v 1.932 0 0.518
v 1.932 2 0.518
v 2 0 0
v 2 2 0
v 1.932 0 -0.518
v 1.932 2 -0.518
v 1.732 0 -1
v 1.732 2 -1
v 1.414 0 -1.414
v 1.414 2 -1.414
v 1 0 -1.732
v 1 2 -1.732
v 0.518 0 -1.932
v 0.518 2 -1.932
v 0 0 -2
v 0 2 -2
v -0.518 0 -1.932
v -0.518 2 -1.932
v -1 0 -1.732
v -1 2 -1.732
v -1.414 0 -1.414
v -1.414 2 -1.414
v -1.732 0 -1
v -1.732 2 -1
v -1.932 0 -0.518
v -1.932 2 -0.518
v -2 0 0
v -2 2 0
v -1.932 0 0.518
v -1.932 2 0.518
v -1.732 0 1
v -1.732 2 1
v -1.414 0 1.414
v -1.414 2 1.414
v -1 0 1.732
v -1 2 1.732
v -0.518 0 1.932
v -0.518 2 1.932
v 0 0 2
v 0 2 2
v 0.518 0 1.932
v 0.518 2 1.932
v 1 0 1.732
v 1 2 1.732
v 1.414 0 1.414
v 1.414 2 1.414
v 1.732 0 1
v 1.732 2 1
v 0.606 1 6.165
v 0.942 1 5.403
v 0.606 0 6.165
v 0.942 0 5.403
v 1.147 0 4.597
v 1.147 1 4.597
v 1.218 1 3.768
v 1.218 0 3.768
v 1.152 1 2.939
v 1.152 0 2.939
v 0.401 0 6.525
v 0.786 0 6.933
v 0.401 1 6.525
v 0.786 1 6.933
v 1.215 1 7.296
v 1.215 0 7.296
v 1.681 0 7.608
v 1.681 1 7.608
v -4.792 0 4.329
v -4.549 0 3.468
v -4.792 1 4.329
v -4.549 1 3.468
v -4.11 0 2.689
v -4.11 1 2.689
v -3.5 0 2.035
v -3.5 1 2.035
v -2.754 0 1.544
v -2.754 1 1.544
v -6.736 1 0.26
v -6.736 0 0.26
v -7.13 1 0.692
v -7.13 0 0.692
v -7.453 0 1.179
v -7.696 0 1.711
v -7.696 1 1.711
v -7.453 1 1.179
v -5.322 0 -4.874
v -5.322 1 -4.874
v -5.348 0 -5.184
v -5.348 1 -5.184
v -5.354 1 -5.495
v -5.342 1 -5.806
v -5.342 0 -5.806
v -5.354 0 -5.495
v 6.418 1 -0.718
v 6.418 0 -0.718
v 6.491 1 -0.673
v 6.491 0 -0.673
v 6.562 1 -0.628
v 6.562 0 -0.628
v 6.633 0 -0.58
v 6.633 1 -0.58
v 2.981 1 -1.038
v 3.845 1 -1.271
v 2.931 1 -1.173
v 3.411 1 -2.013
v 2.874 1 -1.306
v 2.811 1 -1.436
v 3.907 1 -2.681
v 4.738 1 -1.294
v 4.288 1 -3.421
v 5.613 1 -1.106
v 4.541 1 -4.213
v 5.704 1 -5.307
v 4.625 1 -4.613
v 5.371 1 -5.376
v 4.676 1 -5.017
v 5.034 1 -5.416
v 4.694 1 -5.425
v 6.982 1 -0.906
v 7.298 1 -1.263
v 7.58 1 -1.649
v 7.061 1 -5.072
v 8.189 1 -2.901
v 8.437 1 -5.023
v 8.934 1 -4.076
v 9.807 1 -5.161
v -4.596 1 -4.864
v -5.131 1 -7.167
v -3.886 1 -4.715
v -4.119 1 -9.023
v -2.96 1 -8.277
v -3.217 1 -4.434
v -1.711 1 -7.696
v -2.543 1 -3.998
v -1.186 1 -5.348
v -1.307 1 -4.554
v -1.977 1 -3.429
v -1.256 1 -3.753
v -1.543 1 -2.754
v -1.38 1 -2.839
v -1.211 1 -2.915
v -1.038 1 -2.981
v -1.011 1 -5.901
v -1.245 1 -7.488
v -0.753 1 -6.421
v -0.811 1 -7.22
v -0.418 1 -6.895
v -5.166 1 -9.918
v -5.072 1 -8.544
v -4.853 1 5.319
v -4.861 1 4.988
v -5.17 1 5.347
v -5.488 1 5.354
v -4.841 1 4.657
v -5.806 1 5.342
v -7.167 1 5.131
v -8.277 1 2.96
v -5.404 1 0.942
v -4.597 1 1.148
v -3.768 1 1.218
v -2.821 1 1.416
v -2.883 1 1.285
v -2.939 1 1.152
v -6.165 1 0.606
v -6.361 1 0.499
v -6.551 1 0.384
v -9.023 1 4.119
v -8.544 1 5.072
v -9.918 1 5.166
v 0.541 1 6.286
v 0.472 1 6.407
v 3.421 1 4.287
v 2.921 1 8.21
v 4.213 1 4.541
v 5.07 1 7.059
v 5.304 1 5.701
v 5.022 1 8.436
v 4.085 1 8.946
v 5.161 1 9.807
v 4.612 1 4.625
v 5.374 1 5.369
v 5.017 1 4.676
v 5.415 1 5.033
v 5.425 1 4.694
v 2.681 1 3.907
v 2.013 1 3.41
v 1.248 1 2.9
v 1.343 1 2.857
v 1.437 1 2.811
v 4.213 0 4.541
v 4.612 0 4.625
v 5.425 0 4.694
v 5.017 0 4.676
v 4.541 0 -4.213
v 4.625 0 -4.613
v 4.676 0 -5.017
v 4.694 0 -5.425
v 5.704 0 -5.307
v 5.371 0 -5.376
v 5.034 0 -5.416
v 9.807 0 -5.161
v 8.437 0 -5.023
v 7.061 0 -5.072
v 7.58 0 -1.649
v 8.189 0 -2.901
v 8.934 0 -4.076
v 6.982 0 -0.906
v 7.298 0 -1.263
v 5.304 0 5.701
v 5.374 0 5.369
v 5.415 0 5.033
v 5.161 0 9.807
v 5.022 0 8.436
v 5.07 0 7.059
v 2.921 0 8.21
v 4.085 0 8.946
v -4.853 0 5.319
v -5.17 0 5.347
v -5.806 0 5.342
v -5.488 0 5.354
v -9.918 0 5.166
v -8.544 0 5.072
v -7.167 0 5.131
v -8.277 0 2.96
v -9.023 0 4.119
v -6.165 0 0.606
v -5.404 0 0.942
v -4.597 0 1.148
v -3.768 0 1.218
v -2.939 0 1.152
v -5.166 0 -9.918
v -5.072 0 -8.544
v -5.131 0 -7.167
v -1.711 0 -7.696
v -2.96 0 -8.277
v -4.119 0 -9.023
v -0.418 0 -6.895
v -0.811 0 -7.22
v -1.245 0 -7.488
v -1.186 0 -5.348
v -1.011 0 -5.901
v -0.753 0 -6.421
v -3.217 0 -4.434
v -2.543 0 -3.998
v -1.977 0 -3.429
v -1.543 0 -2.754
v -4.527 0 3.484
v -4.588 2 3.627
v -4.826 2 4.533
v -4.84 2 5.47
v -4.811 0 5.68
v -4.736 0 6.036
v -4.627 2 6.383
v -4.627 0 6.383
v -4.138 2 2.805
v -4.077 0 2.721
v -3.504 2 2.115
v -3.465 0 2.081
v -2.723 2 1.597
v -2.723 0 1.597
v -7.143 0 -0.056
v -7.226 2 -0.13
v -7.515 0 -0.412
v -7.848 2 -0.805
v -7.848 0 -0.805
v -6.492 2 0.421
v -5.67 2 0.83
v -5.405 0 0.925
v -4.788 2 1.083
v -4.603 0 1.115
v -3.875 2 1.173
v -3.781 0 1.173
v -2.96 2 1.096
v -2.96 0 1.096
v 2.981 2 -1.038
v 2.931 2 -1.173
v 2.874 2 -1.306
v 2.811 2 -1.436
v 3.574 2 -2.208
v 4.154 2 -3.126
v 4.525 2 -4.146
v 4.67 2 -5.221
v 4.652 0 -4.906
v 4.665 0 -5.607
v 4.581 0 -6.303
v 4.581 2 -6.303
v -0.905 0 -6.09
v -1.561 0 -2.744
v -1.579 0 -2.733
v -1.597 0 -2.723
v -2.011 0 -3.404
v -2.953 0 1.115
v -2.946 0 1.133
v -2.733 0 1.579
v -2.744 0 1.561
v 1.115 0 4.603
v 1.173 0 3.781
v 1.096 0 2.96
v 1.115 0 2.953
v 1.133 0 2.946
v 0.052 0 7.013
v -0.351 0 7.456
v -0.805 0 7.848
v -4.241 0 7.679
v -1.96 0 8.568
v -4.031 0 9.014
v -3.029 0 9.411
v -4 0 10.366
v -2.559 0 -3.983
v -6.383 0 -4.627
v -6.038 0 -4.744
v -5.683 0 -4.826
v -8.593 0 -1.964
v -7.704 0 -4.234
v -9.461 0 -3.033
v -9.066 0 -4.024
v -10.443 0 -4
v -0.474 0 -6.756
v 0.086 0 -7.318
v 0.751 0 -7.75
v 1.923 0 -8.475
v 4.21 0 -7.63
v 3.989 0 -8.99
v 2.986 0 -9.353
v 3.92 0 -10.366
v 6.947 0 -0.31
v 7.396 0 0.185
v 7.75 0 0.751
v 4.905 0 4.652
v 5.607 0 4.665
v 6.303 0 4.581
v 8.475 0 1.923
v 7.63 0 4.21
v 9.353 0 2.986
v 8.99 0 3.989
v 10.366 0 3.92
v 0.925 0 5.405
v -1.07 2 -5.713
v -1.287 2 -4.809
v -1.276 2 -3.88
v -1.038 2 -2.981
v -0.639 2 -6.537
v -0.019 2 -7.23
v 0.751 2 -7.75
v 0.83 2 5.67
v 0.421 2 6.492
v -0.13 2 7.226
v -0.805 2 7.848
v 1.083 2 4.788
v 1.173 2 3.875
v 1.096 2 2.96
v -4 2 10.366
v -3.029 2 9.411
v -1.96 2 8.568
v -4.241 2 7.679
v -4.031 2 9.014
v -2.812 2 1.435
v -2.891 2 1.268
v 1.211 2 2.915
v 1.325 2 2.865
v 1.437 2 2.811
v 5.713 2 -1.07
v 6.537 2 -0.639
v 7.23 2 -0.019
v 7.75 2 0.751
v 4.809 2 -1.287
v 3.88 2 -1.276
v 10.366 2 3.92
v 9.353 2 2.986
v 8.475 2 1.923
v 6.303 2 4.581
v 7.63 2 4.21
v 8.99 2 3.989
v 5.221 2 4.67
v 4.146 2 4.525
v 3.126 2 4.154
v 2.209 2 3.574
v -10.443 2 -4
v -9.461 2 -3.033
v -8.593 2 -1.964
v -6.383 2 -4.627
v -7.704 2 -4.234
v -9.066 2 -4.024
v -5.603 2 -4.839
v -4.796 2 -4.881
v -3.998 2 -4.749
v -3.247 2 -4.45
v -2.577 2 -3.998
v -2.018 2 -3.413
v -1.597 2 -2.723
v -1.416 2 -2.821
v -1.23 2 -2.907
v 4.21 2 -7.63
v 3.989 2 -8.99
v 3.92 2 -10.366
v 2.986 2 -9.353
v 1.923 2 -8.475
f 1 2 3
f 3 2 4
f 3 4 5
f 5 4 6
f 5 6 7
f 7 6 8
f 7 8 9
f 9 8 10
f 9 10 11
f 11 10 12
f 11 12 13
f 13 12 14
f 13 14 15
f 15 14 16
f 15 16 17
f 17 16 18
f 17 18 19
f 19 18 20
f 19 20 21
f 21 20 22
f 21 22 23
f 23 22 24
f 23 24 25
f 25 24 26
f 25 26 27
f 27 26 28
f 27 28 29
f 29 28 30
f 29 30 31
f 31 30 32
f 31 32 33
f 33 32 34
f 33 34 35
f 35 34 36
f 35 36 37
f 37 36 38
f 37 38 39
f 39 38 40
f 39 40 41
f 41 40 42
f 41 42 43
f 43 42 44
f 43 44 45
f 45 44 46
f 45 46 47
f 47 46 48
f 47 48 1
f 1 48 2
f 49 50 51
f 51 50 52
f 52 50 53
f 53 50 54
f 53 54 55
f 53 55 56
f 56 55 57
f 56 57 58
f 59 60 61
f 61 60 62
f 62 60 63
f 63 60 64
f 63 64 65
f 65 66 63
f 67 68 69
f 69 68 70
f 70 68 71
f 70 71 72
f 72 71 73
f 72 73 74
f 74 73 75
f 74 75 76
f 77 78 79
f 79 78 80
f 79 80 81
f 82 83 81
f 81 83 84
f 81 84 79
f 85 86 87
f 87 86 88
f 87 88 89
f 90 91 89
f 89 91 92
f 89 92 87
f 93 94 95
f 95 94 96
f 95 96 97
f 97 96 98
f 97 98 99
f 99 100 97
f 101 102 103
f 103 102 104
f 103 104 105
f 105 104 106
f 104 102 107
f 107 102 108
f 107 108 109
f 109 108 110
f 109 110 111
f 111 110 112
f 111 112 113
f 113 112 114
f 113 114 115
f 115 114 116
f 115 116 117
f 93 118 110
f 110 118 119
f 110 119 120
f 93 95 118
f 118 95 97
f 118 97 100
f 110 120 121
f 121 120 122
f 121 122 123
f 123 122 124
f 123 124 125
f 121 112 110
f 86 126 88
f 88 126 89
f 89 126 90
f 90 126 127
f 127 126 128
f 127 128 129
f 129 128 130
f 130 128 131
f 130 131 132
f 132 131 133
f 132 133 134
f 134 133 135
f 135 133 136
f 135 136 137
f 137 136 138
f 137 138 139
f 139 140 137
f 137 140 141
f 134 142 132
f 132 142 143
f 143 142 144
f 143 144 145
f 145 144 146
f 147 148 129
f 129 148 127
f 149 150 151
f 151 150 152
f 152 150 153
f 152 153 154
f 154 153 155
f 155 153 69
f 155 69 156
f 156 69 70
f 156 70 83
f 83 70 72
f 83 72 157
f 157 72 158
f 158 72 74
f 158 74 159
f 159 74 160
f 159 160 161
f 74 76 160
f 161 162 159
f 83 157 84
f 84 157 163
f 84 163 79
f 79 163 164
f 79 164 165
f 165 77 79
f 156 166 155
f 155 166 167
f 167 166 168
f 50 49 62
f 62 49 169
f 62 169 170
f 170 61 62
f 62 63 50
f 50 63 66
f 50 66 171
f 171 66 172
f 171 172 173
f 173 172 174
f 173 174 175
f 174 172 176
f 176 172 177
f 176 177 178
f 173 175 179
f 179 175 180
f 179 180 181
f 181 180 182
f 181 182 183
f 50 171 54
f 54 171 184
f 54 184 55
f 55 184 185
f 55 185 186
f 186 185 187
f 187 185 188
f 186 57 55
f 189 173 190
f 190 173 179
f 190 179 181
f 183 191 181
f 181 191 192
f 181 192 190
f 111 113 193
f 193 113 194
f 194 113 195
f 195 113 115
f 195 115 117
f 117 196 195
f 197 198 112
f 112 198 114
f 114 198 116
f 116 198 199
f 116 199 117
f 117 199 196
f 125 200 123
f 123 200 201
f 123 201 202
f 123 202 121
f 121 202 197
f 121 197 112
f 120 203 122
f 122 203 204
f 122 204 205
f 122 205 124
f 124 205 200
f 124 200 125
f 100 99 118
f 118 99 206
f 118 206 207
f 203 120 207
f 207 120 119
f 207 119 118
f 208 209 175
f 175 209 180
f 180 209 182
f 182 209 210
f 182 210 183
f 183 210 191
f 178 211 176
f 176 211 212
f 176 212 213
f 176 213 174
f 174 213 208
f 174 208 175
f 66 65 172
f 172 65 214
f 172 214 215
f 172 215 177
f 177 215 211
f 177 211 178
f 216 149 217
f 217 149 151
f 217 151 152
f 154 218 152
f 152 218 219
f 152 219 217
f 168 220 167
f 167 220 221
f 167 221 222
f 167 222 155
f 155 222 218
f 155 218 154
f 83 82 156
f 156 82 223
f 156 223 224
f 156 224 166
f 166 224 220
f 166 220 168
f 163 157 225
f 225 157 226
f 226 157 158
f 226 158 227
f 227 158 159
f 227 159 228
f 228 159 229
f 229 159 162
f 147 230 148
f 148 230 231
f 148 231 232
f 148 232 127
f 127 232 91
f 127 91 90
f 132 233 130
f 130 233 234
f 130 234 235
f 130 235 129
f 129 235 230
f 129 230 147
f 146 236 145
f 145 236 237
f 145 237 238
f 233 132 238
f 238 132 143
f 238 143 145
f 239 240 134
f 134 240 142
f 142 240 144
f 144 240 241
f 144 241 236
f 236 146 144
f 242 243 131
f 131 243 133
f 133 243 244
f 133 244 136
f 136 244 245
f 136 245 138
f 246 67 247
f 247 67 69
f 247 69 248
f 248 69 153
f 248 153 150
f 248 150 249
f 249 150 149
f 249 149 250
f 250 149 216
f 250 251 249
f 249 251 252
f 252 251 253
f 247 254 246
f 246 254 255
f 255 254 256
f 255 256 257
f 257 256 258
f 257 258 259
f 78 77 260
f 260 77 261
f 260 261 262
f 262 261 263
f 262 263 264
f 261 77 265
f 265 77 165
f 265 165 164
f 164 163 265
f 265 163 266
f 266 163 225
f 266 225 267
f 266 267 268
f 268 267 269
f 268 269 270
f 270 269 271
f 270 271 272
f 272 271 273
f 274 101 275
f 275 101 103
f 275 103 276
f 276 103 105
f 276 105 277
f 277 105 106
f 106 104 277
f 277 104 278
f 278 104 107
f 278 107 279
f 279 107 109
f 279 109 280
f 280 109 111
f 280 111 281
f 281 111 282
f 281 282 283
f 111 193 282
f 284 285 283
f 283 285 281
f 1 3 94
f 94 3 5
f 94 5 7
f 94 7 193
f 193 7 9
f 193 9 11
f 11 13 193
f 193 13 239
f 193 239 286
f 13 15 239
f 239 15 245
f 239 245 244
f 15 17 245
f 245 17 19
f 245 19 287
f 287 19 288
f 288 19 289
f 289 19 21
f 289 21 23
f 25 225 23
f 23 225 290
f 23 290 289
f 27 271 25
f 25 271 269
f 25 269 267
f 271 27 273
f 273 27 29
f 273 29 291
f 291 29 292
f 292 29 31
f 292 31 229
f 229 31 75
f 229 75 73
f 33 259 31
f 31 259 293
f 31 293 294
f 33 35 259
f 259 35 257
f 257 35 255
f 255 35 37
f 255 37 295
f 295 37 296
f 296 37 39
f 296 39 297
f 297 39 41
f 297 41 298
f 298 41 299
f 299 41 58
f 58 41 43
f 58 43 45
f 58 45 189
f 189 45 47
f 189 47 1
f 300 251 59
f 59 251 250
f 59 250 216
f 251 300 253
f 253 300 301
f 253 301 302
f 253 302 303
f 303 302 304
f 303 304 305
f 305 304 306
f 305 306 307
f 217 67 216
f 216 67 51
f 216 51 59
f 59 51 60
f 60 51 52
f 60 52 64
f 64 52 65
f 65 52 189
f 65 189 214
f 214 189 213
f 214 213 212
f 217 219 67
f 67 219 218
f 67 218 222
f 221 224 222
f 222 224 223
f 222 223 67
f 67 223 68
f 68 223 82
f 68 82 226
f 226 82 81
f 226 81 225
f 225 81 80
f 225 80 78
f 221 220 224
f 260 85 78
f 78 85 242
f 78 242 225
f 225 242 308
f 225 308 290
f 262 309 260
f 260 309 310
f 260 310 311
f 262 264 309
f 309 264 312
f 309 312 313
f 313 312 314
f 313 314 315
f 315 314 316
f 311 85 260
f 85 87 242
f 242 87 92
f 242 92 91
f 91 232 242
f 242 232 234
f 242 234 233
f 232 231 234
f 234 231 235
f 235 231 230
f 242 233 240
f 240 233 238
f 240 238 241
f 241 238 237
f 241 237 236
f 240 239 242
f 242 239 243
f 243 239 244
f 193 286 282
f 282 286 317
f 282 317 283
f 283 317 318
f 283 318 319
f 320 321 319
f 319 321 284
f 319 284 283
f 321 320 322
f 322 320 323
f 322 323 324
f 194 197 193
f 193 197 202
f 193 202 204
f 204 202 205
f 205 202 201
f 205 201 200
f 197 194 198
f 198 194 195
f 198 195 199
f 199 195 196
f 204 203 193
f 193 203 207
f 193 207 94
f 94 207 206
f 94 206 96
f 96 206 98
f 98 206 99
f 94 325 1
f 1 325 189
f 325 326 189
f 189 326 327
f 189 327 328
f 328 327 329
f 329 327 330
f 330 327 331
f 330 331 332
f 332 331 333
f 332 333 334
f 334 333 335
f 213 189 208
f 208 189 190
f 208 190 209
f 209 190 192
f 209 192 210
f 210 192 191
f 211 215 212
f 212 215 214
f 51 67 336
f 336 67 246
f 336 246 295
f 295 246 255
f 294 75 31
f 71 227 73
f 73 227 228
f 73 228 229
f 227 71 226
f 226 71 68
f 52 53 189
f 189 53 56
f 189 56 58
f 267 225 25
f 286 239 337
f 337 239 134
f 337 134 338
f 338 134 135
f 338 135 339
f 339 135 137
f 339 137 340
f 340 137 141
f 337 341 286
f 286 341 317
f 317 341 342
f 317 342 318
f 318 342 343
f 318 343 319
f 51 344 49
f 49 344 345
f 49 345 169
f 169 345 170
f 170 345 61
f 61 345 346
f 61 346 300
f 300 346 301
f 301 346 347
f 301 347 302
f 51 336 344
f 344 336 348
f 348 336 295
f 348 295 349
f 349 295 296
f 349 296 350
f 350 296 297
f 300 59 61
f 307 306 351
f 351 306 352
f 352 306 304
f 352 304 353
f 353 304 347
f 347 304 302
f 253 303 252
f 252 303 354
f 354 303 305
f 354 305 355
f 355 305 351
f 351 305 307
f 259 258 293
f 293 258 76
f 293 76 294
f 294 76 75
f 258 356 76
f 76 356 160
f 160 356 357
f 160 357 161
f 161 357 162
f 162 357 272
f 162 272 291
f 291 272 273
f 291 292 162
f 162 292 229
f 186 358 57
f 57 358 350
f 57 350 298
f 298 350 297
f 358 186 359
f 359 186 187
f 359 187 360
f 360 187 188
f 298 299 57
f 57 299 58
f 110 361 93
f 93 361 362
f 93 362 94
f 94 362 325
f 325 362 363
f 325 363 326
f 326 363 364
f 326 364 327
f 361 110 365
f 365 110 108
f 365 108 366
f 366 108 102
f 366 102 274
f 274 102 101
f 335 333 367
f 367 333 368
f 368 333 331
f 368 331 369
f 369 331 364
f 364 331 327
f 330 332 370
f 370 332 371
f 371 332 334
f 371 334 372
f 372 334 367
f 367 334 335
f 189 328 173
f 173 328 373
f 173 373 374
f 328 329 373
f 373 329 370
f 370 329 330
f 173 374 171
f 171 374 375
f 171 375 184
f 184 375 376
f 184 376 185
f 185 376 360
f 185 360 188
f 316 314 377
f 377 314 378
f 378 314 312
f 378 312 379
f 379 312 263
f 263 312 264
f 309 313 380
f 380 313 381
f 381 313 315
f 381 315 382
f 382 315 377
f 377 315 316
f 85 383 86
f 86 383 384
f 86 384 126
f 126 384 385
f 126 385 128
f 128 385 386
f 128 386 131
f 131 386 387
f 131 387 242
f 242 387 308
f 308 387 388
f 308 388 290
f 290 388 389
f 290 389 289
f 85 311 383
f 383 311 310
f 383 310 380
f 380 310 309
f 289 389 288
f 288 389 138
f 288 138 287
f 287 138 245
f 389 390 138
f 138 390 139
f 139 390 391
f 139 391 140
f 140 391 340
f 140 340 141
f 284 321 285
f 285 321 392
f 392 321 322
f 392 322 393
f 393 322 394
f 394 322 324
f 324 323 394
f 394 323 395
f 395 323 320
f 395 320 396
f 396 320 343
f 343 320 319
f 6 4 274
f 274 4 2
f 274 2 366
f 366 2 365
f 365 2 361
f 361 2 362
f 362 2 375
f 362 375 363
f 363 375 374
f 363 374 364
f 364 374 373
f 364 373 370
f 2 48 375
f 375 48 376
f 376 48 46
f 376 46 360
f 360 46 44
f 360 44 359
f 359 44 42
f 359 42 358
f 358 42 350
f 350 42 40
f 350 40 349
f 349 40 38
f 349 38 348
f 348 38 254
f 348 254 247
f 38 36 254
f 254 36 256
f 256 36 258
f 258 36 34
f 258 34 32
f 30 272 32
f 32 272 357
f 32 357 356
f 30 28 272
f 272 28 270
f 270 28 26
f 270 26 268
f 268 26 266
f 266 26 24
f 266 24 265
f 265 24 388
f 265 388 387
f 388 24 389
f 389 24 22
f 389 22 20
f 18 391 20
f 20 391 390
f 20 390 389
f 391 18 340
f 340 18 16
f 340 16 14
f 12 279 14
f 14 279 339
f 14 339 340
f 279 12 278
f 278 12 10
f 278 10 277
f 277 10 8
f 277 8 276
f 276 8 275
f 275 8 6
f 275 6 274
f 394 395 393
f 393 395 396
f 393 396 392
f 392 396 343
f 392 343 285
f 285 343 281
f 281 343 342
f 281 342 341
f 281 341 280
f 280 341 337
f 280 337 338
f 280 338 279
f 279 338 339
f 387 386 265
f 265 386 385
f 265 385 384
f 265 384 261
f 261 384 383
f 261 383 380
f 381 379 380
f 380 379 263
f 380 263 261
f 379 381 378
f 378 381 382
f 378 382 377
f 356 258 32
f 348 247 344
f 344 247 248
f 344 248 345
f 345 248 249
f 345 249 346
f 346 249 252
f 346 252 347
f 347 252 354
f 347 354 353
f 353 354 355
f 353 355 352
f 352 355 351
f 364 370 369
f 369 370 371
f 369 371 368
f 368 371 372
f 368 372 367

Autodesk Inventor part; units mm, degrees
ref_plane "YZ Plane" through (0, 0, 0) normal (1, 0, 0) x (0, 1, 0)
ref_plane "XZ Plane" through (0, 0, 0) normal (0, 1, 0) x (-1, 0, 0)
ref_plane "XY Plane" through (0, 0, 0) normal (0, 0, 1) x (1, 0, 0)
sketch "Sketch1" plane through (0, 0, 0) normal (0, 1, 0) x (-1, 0, 0)
  circle A0 centre (0, 0) radius 3.1567
  arc A1 (0.8045, 7.8482) -> (-1.096, 2.9604) centre (3.8775, 3.84) ccw
  arc A2 (0.8045, 7.8482) -> (3.9995, 10.3658) centre (-5.1655, 18.7108) ccw
  arc A3 (3.9995, 10.3658) -> (4.6274, 6.3833) centre (14.1317, 9.9224) ccw
  arc A4 (2.723, 1.597) -> (4.6274, 6.3833) centre (0.993, 5.0574) ccw
  arc A5 (-2.811, -1.4364) -> (-4.581, -6.3031) centre (0.3797, -5.3521) ccw
  arc A6 (-3.9197, -10.3658) -> (-4.581, -6.3031) centre (-16.3145, -10.2983) ccw
  arc A7 (-0.7514, -7.7504) -> (-3.9197, -10.3658) centre (3.9871, -16.7173) ccw
  arc A8 (-0.7514, -7.7504) -> (1.0381, -2.9812) centre (-2.4622, -4.3882) ccw
  arc A9 (-4.581, 6.3031) -> (-3.9197, 10.3658) centre (-16.3145, 10.2983) ccw
  arc A10 (-3.9197, 10.3658) -> (-0.7514, 7.7504) centre (3.9871, 16.7173) ccw
  arc A11 (0.0827, -7.173) -> (0.8045, -7.8482) centre (3.8775, -3.84) ccw
  arc A12 (3.9995, -10.4433) -> (0.8045, -7.8482) centre (-5.3042, -18.6335) ccw
  arc A13 (4.6274, -6.3833) -> (3.9995, -10.4433) centre (14.1284, -9.9311) ccw
  arc A14 (4.6274, -6.3833) -> (4.8845, -4.8845) centre (1.1142, -5.0091) ccw
  arc A15 (-6.3833, -4.6274) -> (-4.6482, -4.8692) centre (-5.0091, -1.1142) ccw
  arc A16 (-1.4365, 2.8109) -> (-6.3031, 4.581) centre (-5.3521, -0.3794) ccw
  arc A17 (-7.7504, 0.7514) -> (-2.9812, -1.038) centre (-4.3883, 2.4621) ccw
  arc A18 (-6.3833, -4.6274) -> (-10.4433, -3.9995) centre (-9.9311, -14.1284) ccw
  arc A19 (-10.4433, -3.9995) -> (-7.8482, -0.8045) centre (-18.6335, 5.3042) ccw
  arc A20 (-7.7504, 0.7514) -> (-10.3658, 3.9197) centre (-16.7173, -3.9871) ccw
  arc A21 (-10.3658, 3.9197) -> (-6.3031, 4.581) centre (-10.2983, 16.3145) ccw
  arc A22 (-7.173, -0.0827) -> (-7.8482, -0.8045) centre (-3.84, -3.8775) ccw
  circle A23 centre (0, 0) radius 3.1567
  arc A24 (1.597, -2.723) -> (6.3833, -4.6274) centre (5.0091, -1.1142) ccw
  arc A25 (7.8482, -0.8045) -> (10.4433, -3.9995) centre (18.6335, 5.3042) ccw
  arc A26 (10.4433, -3.9995) -> (6.3833, -4.6274) centre (9.9311, -14.1284) ccw
  arc A27 (7.8482, -0.8045) -> (2.9604, 1.096) centre (3.84, -3.8775) ccw
  arc A28 (10.3658, 3.9197) -> (7.7544, 0.7514) centre (16.7241, -3.9816) ccw
  arc A29 (6.2595, 4.581) -> (10.3658, 3.9197) centre (10.2556, 16.3142) ccw
  arc A30 (-4.581, 6.3031) -> (-4.6176, 4.6176) centre (0.3794, 5.3521) ccw
  arc A31 (0.0827, 7.173) -> (-0.7514, 7.7504) centre (-2.4621, 4.3883) ccw
  arc A32 (6.2595, 4.581) -> (4.8322, 4.581) centre (5.5459, -0.4191) ccw
  arc A33 (7.173, -0.0827) -> (7.7544, 0.7514) centre (4.3971, 2.4718) ccw
  point P0 (0, 0)
extrude "Extrusion1" add sketch "Sketch1" along normal blind 2 contours A0 | A0 A27 A25 A26 A24 | A0 A1 A2 A3 A4 | A8 A7 A6 A5 A0 | A0 A17 A20 A21 A16
sketch "Sketch2" plane through (0, 0, 0) normal (0, -1, 0) x (1, 0, 0)
  arc A0 (-6.3002, -4.5761) -> (-10.3587, -3.9384) centre (-9.8712, -14.0685) ccw
  arc A1 (-10.3587, -3.9384) -> (-7.7558, -0.7497) centre (-18.5261, 5.3853) ccw
  arc A2 (-7.6963, 1.7106) -> (-6.727, 0.2513) centre (-4.1552, 3.0112) ccw
  arc A3 (-7.6963, 1.7106) -> (-9.9181, 5.1662) centre (-17.1611, -1.9329) ccw
  arc A4 (1.6813, 7.6084) -> (0.3953, 6.5184) centre (4.2581, 3.2645) ccw
  arc A5 (5.4246, 4.6938) -> (5.3039, 5.7011) centre (1.6527, 4.7526) ccw
  arc A6 (5.1612, 9.8069) -> (5.3039, 5.7011) centre (15.1582, 8.099) ccw
  arc A7 (1.6813, 7.6084) -> (5.1612, 9.8069) centre (-3.1073, 19.0411) ccw
  circle A8 centre (0, 0) radius 3.1567
  arc A9 (-2.939, 1.152) -> (-7.7558, -0.7497) centre (-3.7548, -3.8328) ccw
  arc A10 (-3.9384, 10.3587) -> (-0.7497, 7.7558) centre (5.3853, 18.5261) ccw
  arc A11 (1.1518, 2.9391) -> (-0.7497, 7.7558) centre (-3.8325, 3.7551) ccw
  arc A12 (-4.5761, 6.3002) -> (-3.9384, 10.3587) centre (-14.0685, 9.8712) ccw
  arc A13 (-4.8177, 5.3149) -> (-5.8057, 5.3418) centre (-5.4487, 0.3038) ccw
  arc A14 (-9.9181, 5.1662) -> (-5.8057, 5.3418) centre (-8.3835, 17.4659) ccw
  arc A15 (-4.5761, 6.3002) -> (-2.7536, 1.5435) centre (-1.0663, 4.9175) ccw
  circle A16 centre (0, 0) radius 3.1567
  arc A17 (7.5795, -1.6487) -> (9.8069, -5.1612) centre (19.0125, 3.1391) ccw
  arc A18 (9.8069, -5.1612) -> (5.7037, -5.3068) centre (8.1076, -15.1596) ccw
  arc A19 (7.5795, -1.6487) -> (6.6332, -0.5802) centre (3.3633, -4.4295) ccw
  arc A20 (10.4117, 3.8786) -> (7.8466, 0.7681) centre (16.7974, -4.0005) ccw
  arc A21 (4.6938, -5.4246) -> (5.7037, -5.3068) centre (4.7657, -1.6529) ccw
  arc A22 (6.4086, 4.6012) -> (10.4117, 3.8786) centre (10.5823, 16.2725) ccw
  arc A23 (3.0009, -0.9796) -> (7.8466, 0.7681) centre (4.4443, 2.6098) ccw
  arc A24 (6.4086, 4.6012) -> (1.4895, 2.7832) centre (5.4455, -0.3568) ccw
  arc A25 (4.6012, -6.4086) -> (2.7832, -1.4895) centre (-0.3568, -5.4455) ccw
  arc A26 (-1.7106, -7.6963) -> (-5.1662, -9.9181) centre (1.9329, -17.1611) ccw
  arc A27 (-1.7106, -7.6963) -> (-0.4181, -6.895) centre (-3.0112, -4.1552) ccw
  arc A28 (-5.1662, -9.9181) -> (-5.3418, -5.8057) centre (-17.4659, -8.3835) ccw
  arc A29 (3.9299, -10.4697) -> (0.7681, -7.8466) centre (-3.9923, -16.8018) ccw
  arc A30 (-5.3149, -4.8177) -> (-5.3418, -5.8057) centre (-0.3038, -5.4487) ccw
  arc A31 (4.6012, -6.4086) -> (3.9299, -10.4697) centre (16.3249, -10.4325) ccw
  arc A32 (-0.9796, -3.0009) -> (0.7681, -7.8466) centre (2.487, -4.4886) ccw
  arc A33 (-6.3002, -4.5761) -> (-1.5435, -2.7537) centre (-4.9175, -1.0662) ccw
  point P0 (0, 0)
  point P1 (0, 0)
extrude "Extrusion2" add sketch "Sketch2" against normal blind 1 contours A33 A8 A32 A27 A26 A28 A30 | A8 | A2 A3 A14 A13 A15 A8 A9 | A8 A23 A19 A17 A18 A21 A25 | A11 A4 A7 A6 A5 A24 A8
sketch "Sketch3" plane through (0, 2, 0) normal (0, 1, 0) x (1, 0, 0)
  circle A0 centre (0, 0) radius 2
  dimension "d4" = 4
extrude "Extrusion3" cut sketch "Sketch3" against normal blind 2
properties part number "Hombro"
